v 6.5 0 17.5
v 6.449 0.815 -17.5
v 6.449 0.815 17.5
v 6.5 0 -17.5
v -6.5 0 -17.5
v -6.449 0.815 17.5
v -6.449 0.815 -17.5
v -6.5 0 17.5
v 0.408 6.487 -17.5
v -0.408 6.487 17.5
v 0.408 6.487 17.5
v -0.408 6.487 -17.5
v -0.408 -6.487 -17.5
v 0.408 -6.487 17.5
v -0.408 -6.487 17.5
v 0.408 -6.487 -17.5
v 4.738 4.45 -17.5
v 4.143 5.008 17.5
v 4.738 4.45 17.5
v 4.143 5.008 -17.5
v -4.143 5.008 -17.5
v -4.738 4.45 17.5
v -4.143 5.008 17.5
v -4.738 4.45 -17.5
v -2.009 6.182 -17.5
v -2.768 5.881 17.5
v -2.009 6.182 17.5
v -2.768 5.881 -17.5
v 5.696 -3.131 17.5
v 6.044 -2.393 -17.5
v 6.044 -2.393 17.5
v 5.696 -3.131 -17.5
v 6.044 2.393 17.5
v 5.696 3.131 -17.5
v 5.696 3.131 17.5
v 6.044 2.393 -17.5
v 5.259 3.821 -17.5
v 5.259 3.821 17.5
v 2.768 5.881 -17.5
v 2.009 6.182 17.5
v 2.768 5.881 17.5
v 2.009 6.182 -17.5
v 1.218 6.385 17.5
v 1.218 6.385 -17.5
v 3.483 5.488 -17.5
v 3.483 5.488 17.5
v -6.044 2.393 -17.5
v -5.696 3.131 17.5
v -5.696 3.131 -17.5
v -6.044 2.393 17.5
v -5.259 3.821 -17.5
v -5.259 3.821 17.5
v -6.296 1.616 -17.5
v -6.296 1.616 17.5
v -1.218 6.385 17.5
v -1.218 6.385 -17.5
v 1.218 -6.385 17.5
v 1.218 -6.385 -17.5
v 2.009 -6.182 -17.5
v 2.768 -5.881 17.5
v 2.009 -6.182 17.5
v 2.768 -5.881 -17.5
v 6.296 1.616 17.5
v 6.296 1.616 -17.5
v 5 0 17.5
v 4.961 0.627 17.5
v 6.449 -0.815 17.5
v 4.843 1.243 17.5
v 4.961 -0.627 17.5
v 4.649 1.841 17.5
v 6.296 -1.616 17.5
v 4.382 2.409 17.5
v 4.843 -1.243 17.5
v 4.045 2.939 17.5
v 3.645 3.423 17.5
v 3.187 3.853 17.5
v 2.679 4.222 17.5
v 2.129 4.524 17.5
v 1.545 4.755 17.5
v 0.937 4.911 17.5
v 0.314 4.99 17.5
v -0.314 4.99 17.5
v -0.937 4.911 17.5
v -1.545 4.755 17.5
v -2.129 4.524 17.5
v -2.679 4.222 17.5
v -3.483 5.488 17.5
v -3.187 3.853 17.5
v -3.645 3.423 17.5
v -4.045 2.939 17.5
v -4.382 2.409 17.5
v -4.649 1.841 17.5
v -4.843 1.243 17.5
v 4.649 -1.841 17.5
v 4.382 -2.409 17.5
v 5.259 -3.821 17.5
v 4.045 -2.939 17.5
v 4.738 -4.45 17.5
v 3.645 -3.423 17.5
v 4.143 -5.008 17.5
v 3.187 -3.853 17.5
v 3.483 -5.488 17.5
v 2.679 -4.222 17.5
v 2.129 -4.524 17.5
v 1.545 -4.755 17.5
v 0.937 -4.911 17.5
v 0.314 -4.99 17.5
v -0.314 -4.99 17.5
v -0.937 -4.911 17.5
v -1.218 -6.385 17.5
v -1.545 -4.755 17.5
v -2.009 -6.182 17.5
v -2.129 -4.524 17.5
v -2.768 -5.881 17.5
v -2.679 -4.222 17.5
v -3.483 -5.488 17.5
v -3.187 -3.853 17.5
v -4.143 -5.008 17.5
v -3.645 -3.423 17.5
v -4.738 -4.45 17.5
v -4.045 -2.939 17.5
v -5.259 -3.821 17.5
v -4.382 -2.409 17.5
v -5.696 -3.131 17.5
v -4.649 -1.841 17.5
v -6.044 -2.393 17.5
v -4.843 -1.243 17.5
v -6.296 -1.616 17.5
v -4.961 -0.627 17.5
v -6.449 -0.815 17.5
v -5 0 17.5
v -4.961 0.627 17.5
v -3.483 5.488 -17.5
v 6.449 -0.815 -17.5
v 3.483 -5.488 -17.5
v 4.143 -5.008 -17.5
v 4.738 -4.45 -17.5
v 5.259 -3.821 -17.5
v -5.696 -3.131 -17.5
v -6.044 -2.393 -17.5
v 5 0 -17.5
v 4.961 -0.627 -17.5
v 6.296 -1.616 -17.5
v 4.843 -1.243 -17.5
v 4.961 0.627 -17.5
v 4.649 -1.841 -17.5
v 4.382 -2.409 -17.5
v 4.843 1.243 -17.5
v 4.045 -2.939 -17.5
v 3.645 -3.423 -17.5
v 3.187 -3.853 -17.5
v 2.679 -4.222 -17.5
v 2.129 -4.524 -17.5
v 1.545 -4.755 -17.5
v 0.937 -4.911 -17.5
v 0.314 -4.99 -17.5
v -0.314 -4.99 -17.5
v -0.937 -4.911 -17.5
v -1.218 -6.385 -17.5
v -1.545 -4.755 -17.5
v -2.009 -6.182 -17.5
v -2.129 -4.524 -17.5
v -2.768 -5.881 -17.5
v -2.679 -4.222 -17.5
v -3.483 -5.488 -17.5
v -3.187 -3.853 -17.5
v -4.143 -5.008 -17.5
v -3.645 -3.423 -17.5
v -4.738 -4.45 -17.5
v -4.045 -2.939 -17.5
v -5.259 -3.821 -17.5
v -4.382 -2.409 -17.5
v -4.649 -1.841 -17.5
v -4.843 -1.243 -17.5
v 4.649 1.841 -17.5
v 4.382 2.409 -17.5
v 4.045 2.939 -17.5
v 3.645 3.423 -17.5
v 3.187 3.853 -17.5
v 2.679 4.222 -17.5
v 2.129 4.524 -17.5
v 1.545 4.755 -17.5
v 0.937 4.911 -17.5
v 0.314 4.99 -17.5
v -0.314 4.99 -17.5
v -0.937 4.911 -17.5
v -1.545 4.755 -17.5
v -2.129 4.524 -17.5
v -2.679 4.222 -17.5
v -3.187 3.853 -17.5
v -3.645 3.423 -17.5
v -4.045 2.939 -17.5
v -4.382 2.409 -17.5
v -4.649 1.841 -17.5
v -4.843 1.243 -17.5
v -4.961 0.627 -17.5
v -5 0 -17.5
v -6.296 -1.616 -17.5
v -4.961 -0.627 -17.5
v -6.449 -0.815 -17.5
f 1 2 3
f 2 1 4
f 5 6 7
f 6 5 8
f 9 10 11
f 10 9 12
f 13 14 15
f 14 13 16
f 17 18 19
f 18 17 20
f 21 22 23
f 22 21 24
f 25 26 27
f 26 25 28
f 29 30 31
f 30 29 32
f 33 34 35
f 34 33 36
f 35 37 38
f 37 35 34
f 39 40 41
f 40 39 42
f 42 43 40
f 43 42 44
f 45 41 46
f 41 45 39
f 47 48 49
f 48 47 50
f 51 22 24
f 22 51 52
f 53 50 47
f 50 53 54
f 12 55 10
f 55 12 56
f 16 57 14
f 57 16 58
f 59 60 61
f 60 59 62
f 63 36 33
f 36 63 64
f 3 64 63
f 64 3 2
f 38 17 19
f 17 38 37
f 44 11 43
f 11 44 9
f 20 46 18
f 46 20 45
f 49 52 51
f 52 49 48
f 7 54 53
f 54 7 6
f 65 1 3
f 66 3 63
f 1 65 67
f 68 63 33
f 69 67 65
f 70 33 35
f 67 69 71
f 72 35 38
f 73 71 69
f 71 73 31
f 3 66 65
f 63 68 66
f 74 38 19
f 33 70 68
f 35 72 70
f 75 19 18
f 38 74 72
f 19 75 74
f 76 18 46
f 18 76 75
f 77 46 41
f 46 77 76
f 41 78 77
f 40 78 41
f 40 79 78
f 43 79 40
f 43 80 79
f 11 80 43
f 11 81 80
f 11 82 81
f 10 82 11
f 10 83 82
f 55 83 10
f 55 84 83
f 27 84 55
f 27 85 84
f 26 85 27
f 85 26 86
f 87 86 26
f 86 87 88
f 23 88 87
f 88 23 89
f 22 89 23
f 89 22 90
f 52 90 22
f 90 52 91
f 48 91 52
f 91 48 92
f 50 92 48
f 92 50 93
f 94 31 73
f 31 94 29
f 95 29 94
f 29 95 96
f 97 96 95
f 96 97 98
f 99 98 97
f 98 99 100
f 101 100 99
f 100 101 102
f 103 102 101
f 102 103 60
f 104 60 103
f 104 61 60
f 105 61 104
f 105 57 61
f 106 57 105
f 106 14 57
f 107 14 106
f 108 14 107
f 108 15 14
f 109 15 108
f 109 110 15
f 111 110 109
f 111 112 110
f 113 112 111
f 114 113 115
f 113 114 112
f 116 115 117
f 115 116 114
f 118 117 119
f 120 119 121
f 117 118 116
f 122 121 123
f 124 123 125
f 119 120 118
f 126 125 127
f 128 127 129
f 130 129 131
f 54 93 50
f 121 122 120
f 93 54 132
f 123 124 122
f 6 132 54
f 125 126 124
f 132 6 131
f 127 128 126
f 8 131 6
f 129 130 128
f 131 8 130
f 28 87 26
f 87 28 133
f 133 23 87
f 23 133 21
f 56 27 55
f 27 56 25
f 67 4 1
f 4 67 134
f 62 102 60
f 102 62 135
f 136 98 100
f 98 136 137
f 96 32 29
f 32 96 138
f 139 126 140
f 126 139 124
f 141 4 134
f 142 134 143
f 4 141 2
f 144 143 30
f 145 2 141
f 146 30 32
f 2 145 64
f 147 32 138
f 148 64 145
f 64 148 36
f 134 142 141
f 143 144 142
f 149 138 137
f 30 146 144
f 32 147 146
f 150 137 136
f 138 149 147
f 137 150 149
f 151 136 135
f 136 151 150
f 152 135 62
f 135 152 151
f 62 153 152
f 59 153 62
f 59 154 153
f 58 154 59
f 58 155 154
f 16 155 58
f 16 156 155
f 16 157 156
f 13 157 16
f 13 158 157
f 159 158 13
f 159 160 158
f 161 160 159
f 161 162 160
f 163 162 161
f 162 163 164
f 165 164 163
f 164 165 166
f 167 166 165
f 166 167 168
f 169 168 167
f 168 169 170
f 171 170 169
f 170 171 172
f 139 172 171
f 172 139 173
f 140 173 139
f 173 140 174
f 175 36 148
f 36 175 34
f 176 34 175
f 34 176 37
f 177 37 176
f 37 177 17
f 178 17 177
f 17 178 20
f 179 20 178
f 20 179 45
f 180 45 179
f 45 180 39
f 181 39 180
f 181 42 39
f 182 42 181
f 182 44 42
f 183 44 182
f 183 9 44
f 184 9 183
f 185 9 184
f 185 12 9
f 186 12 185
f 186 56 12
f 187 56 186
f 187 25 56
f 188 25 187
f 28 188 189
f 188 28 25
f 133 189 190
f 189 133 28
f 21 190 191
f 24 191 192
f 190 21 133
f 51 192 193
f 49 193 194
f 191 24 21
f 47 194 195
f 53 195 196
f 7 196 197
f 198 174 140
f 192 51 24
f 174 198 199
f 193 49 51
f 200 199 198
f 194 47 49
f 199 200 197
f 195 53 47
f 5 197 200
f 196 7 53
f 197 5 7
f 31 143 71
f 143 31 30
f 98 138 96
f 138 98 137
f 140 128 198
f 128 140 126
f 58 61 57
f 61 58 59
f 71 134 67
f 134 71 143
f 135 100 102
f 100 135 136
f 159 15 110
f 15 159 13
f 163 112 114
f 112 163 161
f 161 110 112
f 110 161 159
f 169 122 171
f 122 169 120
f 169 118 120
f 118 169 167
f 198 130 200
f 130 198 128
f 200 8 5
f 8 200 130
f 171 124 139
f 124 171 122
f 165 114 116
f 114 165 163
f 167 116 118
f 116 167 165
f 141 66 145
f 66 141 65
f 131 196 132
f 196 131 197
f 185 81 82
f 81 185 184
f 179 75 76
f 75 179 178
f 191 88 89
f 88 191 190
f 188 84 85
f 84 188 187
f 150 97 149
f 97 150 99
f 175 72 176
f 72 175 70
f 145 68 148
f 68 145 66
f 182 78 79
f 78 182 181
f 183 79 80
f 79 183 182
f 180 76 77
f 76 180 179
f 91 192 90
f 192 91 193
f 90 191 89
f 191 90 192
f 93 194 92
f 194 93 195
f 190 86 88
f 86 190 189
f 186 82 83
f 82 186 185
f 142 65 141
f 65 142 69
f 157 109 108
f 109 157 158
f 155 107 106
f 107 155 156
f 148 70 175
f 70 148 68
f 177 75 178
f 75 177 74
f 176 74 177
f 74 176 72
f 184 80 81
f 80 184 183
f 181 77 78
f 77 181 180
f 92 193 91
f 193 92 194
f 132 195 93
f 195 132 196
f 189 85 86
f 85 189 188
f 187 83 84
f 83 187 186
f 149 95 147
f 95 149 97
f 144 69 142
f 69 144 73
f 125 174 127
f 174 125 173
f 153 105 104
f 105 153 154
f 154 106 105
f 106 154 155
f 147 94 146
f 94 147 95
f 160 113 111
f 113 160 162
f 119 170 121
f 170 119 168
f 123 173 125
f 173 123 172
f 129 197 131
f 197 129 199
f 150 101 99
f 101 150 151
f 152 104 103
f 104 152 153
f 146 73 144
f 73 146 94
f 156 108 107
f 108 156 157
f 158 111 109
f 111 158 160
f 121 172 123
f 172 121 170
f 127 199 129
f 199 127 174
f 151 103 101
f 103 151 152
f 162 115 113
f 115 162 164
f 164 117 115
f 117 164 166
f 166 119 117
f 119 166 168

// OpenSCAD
$fn = 50;


difference() {
	union() {
		translate(v = [0, 0, -17.5000000000]) {
			cylinder(h = 35, r = 6.5000000000);
		}
	}
	union() {
		translate(v = [0, 0, -100.0000000000]) {
			cylinder(h = 200, r = 5);
		}
	}
}
